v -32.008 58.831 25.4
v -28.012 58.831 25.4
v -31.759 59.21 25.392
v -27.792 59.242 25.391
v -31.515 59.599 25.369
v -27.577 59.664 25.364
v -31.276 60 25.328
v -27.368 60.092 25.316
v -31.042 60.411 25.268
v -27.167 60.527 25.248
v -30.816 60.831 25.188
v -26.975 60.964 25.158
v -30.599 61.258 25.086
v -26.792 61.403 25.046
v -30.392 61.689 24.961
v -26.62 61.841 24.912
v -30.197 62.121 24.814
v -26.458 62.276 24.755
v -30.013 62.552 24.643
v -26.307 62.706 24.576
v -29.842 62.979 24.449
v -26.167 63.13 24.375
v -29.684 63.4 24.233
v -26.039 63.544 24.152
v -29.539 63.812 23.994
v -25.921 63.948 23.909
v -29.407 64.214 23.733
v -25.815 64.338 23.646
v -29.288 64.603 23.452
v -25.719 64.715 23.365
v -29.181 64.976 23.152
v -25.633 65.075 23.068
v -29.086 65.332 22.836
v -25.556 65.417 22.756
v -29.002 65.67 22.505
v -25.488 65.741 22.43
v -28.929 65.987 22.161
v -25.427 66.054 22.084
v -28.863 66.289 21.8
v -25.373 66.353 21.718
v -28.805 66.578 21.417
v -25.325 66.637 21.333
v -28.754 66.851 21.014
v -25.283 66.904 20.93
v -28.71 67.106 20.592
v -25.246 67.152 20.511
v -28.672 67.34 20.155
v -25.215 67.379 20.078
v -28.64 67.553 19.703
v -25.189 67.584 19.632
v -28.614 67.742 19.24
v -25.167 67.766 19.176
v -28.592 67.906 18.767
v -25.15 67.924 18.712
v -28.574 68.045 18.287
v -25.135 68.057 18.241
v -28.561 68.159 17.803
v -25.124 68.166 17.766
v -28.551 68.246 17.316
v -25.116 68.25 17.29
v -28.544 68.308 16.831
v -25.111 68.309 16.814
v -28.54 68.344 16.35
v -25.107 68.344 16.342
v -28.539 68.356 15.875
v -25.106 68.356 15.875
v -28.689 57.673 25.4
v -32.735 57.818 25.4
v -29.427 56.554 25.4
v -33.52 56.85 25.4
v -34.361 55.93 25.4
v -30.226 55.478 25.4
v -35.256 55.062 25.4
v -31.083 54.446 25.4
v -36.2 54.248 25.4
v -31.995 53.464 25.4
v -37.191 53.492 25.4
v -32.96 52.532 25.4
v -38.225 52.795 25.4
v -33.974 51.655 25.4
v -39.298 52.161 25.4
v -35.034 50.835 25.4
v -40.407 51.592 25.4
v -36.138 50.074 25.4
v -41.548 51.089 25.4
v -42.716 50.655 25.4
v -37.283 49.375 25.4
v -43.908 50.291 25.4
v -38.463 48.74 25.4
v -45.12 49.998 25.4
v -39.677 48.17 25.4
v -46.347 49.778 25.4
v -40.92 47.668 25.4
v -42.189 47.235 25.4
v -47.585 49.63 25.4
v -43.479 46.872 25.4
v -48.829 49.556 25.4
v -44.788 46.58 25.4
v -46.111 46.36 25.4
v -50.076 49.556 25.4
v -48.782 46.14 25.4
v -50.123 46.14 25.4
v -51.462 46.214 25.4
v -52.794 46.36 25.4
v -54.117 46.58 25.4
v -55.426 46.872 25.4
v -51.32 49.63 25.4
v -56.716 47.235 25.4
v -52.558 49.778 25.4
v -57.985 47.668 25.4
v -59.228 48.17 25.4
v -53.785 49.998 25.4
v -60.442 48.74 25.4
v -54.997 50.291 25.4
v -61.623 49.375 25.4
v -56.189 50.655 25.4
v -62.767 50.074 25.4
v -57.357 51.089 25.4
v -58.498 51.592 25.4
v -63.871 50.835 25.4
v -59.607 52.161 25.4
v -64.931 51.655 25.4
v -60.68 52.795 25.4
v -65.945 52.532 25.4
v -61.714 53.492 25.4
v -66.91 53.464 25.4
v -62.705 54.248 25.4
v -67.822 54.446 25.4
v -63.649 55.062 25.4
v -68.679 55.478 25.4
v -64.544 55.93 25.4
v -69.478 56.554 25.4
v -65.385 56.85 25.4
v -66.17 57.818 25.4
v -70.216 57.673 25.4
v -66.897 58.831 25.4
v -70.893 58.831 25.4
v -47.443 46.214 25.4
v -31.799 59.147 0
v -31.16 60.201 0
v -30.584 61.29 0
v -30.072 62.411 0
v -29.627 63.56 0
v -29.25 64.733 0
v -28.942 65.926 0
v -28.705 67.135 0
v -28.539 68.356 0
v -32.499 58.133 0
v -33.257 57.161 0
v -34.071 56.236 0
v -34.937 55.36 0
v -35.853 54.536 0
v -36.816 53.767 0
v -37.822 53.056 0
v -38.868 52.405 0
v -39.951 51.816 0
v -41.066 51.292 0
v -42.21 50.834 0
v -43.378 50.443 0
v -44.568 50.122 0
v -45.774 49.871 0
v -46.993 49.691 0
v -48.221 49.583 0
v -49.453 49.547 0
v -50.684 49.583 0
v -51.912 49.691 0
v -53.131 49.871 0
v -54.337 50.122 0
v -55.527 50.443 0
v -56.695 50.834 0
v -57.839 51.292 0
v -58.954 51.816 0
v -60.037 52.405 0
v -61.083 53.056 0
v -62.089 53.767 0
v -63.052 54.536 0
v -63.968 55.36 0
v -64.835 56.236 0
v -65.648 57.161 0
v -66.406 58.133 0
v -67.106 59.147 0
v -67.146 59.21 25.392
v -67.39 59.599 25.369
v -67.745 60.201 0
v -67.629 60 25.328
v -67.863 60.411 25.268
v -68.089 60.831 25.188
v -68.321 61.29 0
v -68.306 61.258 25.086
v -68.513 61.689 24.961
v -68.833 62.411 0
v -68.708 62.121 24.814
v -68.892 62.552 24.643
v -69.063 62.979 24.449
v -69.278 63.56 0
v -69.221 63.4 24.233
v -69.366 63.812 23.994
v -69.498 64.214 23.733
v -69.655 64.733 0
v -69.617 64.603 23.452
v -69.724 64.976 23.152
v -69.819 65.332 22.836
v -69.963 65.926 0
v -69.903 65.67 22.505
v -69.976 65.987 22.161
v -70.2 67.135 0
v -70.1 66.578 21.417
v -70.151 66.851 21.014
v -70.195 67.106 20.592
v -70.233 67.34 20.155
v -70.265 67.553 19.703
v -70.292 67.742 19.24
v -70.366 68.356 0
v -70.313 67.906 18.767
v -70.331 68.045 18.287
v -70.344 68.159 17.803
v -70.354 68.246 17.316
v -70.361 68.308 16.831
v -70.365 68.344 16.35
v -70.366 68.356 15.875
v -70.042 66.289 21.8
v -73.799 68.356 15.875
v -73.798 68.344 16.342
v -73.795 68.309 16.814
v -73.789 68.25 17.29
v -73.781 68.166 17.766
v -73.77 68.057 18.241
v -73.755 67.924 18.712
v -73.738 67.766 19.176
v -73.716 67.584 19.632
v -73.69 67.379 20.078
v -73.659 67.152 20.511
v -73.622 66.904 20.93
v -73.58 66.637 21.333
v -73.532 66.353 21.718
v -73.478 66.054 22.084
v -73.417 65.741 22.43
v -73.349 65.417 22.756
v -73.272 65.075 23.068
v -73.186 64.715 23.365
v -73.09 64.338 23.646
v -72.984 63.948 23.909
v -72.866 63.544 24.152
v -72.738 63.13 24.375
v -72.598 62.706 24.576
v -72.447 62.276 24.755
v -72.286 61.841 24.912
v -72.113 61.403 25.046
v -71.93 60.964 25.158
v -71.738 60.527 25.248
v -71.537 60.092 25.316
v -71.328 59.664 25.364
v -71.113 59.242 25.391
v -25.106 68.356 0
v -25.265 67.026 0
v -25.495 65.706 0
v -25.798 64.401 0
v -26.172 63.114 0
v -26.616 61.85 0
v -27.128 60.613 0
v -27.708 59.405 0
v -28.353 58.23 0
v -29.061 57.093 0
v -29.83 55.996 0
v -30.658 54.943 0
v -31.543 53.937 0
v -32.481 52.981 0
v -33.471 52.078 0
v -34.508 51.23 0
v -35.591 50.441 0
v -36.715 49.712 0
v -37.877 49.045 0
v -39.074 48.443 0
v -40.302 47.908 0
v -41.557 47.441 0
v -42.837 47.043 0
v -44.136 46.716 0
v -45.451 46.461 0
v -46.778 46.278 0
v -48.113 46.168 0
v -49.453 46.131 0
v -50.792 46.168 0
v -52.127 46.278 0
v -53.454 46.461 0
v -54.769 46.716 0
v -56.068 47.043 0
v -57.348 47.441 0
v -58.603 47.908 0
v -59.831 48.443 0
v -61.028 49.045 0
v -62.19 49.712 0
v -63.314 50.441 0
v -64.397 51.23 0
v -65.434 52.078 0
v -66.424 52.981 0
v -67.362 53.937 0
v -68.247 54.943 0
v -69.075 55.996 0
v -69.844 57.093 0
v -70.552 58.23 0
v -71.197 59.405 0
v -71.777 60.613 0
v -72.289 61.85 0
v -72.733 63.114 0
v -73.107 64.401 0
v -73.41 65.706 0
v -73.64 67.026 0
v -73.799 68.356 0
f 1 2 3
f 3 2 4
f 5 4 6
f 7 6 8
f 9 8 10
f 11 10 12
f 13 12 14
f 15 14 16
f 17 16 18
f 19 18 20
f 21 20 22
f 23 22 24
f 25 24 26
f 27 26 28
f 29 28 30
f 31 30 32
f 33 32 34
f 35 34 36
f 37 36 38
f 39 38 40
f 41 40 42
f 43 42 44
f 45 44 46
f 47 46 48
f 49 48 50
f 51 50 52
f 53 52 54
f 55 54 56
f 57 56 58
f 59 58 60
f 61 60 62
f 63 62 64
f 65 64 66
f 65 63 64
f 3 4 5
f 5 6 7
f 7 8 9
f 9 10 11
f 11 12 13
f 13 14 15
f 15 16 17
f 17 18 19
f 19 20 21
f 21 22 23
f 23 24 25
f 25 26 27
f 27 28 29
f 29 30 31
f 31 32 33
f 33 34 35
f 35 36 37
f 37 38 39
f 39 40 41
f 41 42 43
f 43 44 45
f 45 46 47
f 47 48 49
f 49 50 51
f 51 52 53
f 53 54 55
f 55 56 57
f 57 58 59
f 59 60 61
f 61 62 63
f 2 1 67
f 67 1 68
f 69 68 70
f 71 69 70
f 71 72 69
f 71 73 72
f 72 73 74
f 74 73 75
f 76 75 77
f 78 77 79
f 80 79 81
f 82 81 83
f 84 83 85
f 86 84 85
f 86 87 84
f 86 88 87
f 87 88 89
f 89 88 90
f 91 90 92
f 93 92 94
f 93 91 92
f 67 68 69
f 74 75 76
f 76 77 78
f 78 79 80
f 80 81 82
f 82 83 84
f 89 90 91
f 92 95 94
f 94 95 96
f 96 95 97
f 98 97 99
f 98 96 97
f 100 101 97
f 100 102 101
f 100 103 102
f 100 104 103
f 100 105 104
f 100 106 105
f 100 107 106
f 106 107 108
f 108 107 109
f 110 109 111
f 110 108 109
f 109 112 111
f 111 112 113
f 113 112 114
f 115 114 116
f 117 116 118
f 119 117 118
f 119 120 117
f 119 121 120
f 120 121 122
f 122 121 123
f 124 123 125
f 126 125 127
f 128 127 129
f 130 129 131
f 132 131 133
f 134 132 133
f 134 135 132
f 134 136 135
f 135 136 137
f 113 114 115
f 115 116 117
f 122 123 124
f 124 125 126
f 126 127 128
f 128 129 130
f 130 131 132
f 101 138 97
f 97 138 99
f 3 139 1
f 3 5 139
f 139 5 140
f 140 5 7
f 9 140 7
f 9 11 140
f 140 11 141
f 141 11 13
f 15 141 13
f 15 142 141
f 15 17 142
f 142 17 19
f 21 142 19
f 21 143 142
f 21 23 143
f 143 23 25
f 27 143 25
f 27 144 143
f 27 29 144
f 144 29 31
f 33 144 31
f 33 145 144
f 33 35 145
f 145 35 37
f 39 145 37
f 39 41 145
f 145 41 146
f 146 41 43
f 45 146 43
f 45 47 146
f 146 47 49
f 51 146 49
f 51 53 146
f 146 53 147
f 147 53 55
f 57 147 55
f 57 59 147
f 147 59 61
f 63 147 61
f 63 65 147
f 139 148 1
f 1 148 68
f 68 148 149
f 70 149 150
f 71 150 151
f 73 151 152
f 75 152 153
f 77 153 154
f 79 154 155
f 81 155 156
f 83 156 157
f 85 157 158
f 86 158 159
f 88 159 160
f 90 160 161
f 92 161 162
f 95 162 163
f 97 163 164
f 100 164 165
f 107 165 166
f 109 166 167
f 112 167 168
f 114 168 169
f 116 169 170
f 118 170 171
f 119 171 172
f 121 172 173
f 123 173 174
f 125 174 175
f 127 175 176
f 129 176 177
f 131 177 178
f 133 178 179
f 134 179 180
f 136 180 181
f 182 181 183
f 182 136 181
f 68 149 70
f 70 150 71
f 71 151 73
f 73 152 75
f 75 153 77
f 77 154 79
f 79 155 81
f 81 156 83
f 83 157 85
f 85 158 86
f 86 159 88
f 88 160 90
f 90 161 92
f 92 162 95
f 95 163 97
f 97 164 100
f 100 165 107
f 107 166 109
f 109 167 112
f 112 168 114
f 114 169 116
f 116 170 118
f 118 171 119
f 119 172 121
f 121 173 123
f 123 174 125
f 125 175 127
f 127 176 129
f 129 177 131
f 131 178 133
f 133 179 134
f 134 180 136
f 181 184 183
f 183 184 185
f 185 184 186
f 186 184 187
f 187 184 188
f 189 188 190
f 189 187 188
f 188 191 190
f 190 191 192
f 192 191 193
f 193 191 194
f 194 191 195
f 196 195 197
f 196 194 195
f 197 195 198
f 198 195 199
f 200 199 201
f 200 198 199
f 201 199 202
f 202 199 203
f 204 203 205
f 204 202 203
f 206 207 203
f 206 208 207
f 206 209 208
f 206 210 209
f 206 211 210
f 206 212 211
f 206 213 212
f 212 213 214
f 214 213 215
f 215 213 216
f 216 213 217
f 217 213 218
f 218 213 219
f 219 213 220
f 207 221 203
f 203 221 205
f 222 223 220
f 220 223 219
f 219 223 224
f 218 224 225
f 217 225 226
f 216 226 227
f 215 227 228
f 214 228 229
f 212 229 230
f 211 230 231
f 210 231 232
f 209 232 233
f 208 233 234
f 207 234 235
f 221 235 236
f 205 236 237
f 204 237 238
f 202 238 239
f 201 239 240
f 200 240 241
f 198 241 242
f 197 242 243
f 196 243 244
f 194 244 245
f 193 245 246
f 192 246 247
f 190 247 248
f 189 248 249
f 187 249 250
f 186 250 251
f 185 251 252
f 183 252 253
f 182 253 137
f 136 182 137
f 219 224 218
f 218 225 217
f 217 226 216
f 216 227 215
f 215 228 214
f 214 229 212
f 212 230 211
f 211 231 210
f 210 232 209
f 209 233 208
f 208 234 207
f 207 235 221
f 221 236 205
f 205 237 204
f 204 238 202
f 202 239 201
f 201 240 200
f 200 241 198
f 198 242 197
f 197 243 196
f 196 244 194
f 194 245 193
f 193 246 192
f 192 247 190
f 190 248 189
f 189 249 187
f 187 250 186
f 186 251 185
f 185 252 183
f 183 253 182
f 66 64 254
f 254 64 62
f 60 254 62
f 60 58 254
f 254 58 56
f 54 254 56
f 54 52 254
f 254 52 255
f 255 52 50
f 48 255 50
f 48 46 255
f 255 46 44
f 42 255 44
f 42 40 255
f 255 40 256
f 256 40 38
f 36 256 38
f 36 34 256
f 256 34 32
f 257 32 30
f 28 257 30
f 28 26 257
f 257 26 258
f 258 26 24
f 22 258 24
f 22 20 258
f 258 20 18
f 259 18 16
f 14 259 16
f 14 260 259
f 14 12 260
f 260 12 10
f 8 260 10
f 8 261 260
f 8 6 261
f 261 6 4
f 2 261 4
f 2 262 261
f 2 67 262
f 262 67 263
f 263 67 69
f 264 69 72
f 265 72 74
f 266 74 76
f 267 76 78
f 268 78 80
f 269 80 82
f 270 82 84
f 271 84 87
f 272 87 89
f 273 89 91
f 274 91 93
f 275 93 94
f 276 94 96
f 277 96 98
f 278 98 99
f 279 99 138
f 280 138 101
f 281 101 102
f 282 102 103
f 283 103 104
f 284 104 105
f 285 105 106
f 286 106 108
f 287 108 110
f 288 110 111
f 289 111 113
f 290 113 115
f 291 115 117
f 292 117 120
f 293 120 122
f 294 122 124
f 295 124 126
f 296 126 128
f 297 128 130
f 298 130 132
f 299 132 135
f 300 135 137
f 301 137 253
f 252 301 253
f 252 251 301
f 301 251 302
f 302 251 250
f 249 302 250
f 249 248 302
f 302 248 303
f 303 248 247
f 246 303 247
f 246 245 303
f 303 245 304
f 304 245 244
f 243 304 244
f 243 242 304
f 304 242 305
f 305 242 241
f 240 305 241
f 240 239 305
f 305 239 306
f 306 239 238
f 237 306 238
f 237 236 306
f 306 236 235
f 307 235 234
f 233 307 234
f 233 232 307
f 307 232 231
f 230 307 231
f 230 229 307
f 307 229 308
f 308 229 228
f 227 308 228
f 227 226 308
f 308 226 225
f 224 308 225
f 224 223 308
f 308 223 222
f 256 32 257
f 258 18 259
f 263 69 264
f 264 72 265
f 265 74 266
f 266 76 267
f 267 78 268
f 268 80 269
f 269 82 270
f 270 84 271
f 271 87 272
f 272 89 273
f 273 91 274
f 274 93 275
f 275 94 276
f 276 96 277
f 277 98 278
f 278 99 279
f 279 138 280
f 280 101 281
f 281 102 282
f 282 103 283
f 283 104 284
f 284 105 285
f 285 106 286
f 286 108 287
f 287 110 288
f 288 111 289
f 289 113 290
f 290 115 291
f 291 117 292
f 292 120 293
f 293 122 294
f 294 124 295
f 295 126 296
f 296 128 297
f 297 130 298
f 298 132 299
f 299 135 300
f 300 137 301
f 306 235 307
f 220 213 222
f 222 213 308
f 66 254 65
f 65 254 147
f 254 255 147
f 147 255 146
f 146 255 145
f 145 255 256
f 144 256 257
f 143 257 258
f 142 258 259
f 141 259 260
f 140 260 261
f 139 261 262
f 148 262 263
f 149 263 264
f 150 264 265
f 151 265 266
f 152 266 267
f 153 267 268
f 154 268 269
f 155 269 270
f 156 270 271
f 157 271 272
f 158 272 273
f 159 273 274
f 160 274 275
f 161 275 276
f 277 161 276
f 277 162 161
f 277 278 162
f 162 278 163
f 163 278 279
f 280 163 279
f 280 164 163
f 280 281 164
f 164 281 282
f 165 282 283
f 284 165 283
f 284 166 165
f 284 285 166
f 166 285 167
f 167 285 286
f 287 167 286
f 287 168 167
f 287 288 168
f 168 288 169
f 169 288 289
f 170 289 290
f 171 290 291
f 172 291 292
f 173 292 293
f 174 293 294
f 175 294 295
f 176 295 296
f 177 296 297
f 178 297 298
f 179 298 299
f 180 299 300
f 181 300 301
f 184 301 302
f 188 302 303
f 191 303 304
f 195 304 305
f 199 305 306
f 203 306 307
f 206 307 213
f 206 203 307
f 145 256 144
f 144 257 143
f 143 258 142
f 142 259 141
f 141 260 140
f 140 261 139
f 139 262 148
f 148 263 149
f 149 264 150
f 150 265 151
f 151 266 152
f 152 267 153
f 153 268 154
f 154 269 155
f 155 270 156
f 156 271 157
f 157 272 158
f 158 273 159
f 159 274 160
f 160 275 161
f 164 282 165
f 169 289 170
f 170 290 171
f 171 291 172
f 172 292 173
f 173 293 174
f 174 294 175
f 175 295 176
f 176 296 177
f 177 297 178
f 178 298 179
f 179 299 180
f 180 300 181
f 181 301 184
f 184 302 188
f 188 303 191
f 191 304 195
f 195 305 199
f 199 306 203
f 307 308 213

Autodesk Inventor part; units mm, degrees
ref_plane "YZ Plane" through (0, 0, 0) normal (1, 0, 0) x (0, 1, 0)
ref_plane "XZ Plane" through (0, 0, 0) normal (0, 1, 0) x (-1, 0, 0)
ref_plane "XY Plane" through (0, 0, 0) normal (0, 0, 1) x (1, 0, 0)
sketch "Sketch1" plane through (0, 0, 0) normal (0, 0, 1) x (1, 0, 0)
  arc A0 (-73.7988, 68.3559) -> (-25.1062, 68.3559) centre (-49.4525, 70.5784) ccw
  arc A1 (-70.366, 68.3559) -> (-28.5391, 68.3559) centre (-49.4525, 70.5784) ccw
  line L0 (-73.7988, 68.3559) -> (-70.366, 68.3559)
  line L1 (-28.5391, 68.3559) -> (-25.1062, 68.3559)
  dimension "d0" = 22.225
  dimension "d1" = 21.0312
  dimension "d2" = 24.4475
extrude "Extrusion1" add sketch "Sketch1" along normal blind 25.4
fillet "Fillet1" radius 9.525 2 edges at (-72.0824, 68.3559, 25.4) (-26.8227, 68.3559, 25.4)
properties part number "FE-00006-08"
